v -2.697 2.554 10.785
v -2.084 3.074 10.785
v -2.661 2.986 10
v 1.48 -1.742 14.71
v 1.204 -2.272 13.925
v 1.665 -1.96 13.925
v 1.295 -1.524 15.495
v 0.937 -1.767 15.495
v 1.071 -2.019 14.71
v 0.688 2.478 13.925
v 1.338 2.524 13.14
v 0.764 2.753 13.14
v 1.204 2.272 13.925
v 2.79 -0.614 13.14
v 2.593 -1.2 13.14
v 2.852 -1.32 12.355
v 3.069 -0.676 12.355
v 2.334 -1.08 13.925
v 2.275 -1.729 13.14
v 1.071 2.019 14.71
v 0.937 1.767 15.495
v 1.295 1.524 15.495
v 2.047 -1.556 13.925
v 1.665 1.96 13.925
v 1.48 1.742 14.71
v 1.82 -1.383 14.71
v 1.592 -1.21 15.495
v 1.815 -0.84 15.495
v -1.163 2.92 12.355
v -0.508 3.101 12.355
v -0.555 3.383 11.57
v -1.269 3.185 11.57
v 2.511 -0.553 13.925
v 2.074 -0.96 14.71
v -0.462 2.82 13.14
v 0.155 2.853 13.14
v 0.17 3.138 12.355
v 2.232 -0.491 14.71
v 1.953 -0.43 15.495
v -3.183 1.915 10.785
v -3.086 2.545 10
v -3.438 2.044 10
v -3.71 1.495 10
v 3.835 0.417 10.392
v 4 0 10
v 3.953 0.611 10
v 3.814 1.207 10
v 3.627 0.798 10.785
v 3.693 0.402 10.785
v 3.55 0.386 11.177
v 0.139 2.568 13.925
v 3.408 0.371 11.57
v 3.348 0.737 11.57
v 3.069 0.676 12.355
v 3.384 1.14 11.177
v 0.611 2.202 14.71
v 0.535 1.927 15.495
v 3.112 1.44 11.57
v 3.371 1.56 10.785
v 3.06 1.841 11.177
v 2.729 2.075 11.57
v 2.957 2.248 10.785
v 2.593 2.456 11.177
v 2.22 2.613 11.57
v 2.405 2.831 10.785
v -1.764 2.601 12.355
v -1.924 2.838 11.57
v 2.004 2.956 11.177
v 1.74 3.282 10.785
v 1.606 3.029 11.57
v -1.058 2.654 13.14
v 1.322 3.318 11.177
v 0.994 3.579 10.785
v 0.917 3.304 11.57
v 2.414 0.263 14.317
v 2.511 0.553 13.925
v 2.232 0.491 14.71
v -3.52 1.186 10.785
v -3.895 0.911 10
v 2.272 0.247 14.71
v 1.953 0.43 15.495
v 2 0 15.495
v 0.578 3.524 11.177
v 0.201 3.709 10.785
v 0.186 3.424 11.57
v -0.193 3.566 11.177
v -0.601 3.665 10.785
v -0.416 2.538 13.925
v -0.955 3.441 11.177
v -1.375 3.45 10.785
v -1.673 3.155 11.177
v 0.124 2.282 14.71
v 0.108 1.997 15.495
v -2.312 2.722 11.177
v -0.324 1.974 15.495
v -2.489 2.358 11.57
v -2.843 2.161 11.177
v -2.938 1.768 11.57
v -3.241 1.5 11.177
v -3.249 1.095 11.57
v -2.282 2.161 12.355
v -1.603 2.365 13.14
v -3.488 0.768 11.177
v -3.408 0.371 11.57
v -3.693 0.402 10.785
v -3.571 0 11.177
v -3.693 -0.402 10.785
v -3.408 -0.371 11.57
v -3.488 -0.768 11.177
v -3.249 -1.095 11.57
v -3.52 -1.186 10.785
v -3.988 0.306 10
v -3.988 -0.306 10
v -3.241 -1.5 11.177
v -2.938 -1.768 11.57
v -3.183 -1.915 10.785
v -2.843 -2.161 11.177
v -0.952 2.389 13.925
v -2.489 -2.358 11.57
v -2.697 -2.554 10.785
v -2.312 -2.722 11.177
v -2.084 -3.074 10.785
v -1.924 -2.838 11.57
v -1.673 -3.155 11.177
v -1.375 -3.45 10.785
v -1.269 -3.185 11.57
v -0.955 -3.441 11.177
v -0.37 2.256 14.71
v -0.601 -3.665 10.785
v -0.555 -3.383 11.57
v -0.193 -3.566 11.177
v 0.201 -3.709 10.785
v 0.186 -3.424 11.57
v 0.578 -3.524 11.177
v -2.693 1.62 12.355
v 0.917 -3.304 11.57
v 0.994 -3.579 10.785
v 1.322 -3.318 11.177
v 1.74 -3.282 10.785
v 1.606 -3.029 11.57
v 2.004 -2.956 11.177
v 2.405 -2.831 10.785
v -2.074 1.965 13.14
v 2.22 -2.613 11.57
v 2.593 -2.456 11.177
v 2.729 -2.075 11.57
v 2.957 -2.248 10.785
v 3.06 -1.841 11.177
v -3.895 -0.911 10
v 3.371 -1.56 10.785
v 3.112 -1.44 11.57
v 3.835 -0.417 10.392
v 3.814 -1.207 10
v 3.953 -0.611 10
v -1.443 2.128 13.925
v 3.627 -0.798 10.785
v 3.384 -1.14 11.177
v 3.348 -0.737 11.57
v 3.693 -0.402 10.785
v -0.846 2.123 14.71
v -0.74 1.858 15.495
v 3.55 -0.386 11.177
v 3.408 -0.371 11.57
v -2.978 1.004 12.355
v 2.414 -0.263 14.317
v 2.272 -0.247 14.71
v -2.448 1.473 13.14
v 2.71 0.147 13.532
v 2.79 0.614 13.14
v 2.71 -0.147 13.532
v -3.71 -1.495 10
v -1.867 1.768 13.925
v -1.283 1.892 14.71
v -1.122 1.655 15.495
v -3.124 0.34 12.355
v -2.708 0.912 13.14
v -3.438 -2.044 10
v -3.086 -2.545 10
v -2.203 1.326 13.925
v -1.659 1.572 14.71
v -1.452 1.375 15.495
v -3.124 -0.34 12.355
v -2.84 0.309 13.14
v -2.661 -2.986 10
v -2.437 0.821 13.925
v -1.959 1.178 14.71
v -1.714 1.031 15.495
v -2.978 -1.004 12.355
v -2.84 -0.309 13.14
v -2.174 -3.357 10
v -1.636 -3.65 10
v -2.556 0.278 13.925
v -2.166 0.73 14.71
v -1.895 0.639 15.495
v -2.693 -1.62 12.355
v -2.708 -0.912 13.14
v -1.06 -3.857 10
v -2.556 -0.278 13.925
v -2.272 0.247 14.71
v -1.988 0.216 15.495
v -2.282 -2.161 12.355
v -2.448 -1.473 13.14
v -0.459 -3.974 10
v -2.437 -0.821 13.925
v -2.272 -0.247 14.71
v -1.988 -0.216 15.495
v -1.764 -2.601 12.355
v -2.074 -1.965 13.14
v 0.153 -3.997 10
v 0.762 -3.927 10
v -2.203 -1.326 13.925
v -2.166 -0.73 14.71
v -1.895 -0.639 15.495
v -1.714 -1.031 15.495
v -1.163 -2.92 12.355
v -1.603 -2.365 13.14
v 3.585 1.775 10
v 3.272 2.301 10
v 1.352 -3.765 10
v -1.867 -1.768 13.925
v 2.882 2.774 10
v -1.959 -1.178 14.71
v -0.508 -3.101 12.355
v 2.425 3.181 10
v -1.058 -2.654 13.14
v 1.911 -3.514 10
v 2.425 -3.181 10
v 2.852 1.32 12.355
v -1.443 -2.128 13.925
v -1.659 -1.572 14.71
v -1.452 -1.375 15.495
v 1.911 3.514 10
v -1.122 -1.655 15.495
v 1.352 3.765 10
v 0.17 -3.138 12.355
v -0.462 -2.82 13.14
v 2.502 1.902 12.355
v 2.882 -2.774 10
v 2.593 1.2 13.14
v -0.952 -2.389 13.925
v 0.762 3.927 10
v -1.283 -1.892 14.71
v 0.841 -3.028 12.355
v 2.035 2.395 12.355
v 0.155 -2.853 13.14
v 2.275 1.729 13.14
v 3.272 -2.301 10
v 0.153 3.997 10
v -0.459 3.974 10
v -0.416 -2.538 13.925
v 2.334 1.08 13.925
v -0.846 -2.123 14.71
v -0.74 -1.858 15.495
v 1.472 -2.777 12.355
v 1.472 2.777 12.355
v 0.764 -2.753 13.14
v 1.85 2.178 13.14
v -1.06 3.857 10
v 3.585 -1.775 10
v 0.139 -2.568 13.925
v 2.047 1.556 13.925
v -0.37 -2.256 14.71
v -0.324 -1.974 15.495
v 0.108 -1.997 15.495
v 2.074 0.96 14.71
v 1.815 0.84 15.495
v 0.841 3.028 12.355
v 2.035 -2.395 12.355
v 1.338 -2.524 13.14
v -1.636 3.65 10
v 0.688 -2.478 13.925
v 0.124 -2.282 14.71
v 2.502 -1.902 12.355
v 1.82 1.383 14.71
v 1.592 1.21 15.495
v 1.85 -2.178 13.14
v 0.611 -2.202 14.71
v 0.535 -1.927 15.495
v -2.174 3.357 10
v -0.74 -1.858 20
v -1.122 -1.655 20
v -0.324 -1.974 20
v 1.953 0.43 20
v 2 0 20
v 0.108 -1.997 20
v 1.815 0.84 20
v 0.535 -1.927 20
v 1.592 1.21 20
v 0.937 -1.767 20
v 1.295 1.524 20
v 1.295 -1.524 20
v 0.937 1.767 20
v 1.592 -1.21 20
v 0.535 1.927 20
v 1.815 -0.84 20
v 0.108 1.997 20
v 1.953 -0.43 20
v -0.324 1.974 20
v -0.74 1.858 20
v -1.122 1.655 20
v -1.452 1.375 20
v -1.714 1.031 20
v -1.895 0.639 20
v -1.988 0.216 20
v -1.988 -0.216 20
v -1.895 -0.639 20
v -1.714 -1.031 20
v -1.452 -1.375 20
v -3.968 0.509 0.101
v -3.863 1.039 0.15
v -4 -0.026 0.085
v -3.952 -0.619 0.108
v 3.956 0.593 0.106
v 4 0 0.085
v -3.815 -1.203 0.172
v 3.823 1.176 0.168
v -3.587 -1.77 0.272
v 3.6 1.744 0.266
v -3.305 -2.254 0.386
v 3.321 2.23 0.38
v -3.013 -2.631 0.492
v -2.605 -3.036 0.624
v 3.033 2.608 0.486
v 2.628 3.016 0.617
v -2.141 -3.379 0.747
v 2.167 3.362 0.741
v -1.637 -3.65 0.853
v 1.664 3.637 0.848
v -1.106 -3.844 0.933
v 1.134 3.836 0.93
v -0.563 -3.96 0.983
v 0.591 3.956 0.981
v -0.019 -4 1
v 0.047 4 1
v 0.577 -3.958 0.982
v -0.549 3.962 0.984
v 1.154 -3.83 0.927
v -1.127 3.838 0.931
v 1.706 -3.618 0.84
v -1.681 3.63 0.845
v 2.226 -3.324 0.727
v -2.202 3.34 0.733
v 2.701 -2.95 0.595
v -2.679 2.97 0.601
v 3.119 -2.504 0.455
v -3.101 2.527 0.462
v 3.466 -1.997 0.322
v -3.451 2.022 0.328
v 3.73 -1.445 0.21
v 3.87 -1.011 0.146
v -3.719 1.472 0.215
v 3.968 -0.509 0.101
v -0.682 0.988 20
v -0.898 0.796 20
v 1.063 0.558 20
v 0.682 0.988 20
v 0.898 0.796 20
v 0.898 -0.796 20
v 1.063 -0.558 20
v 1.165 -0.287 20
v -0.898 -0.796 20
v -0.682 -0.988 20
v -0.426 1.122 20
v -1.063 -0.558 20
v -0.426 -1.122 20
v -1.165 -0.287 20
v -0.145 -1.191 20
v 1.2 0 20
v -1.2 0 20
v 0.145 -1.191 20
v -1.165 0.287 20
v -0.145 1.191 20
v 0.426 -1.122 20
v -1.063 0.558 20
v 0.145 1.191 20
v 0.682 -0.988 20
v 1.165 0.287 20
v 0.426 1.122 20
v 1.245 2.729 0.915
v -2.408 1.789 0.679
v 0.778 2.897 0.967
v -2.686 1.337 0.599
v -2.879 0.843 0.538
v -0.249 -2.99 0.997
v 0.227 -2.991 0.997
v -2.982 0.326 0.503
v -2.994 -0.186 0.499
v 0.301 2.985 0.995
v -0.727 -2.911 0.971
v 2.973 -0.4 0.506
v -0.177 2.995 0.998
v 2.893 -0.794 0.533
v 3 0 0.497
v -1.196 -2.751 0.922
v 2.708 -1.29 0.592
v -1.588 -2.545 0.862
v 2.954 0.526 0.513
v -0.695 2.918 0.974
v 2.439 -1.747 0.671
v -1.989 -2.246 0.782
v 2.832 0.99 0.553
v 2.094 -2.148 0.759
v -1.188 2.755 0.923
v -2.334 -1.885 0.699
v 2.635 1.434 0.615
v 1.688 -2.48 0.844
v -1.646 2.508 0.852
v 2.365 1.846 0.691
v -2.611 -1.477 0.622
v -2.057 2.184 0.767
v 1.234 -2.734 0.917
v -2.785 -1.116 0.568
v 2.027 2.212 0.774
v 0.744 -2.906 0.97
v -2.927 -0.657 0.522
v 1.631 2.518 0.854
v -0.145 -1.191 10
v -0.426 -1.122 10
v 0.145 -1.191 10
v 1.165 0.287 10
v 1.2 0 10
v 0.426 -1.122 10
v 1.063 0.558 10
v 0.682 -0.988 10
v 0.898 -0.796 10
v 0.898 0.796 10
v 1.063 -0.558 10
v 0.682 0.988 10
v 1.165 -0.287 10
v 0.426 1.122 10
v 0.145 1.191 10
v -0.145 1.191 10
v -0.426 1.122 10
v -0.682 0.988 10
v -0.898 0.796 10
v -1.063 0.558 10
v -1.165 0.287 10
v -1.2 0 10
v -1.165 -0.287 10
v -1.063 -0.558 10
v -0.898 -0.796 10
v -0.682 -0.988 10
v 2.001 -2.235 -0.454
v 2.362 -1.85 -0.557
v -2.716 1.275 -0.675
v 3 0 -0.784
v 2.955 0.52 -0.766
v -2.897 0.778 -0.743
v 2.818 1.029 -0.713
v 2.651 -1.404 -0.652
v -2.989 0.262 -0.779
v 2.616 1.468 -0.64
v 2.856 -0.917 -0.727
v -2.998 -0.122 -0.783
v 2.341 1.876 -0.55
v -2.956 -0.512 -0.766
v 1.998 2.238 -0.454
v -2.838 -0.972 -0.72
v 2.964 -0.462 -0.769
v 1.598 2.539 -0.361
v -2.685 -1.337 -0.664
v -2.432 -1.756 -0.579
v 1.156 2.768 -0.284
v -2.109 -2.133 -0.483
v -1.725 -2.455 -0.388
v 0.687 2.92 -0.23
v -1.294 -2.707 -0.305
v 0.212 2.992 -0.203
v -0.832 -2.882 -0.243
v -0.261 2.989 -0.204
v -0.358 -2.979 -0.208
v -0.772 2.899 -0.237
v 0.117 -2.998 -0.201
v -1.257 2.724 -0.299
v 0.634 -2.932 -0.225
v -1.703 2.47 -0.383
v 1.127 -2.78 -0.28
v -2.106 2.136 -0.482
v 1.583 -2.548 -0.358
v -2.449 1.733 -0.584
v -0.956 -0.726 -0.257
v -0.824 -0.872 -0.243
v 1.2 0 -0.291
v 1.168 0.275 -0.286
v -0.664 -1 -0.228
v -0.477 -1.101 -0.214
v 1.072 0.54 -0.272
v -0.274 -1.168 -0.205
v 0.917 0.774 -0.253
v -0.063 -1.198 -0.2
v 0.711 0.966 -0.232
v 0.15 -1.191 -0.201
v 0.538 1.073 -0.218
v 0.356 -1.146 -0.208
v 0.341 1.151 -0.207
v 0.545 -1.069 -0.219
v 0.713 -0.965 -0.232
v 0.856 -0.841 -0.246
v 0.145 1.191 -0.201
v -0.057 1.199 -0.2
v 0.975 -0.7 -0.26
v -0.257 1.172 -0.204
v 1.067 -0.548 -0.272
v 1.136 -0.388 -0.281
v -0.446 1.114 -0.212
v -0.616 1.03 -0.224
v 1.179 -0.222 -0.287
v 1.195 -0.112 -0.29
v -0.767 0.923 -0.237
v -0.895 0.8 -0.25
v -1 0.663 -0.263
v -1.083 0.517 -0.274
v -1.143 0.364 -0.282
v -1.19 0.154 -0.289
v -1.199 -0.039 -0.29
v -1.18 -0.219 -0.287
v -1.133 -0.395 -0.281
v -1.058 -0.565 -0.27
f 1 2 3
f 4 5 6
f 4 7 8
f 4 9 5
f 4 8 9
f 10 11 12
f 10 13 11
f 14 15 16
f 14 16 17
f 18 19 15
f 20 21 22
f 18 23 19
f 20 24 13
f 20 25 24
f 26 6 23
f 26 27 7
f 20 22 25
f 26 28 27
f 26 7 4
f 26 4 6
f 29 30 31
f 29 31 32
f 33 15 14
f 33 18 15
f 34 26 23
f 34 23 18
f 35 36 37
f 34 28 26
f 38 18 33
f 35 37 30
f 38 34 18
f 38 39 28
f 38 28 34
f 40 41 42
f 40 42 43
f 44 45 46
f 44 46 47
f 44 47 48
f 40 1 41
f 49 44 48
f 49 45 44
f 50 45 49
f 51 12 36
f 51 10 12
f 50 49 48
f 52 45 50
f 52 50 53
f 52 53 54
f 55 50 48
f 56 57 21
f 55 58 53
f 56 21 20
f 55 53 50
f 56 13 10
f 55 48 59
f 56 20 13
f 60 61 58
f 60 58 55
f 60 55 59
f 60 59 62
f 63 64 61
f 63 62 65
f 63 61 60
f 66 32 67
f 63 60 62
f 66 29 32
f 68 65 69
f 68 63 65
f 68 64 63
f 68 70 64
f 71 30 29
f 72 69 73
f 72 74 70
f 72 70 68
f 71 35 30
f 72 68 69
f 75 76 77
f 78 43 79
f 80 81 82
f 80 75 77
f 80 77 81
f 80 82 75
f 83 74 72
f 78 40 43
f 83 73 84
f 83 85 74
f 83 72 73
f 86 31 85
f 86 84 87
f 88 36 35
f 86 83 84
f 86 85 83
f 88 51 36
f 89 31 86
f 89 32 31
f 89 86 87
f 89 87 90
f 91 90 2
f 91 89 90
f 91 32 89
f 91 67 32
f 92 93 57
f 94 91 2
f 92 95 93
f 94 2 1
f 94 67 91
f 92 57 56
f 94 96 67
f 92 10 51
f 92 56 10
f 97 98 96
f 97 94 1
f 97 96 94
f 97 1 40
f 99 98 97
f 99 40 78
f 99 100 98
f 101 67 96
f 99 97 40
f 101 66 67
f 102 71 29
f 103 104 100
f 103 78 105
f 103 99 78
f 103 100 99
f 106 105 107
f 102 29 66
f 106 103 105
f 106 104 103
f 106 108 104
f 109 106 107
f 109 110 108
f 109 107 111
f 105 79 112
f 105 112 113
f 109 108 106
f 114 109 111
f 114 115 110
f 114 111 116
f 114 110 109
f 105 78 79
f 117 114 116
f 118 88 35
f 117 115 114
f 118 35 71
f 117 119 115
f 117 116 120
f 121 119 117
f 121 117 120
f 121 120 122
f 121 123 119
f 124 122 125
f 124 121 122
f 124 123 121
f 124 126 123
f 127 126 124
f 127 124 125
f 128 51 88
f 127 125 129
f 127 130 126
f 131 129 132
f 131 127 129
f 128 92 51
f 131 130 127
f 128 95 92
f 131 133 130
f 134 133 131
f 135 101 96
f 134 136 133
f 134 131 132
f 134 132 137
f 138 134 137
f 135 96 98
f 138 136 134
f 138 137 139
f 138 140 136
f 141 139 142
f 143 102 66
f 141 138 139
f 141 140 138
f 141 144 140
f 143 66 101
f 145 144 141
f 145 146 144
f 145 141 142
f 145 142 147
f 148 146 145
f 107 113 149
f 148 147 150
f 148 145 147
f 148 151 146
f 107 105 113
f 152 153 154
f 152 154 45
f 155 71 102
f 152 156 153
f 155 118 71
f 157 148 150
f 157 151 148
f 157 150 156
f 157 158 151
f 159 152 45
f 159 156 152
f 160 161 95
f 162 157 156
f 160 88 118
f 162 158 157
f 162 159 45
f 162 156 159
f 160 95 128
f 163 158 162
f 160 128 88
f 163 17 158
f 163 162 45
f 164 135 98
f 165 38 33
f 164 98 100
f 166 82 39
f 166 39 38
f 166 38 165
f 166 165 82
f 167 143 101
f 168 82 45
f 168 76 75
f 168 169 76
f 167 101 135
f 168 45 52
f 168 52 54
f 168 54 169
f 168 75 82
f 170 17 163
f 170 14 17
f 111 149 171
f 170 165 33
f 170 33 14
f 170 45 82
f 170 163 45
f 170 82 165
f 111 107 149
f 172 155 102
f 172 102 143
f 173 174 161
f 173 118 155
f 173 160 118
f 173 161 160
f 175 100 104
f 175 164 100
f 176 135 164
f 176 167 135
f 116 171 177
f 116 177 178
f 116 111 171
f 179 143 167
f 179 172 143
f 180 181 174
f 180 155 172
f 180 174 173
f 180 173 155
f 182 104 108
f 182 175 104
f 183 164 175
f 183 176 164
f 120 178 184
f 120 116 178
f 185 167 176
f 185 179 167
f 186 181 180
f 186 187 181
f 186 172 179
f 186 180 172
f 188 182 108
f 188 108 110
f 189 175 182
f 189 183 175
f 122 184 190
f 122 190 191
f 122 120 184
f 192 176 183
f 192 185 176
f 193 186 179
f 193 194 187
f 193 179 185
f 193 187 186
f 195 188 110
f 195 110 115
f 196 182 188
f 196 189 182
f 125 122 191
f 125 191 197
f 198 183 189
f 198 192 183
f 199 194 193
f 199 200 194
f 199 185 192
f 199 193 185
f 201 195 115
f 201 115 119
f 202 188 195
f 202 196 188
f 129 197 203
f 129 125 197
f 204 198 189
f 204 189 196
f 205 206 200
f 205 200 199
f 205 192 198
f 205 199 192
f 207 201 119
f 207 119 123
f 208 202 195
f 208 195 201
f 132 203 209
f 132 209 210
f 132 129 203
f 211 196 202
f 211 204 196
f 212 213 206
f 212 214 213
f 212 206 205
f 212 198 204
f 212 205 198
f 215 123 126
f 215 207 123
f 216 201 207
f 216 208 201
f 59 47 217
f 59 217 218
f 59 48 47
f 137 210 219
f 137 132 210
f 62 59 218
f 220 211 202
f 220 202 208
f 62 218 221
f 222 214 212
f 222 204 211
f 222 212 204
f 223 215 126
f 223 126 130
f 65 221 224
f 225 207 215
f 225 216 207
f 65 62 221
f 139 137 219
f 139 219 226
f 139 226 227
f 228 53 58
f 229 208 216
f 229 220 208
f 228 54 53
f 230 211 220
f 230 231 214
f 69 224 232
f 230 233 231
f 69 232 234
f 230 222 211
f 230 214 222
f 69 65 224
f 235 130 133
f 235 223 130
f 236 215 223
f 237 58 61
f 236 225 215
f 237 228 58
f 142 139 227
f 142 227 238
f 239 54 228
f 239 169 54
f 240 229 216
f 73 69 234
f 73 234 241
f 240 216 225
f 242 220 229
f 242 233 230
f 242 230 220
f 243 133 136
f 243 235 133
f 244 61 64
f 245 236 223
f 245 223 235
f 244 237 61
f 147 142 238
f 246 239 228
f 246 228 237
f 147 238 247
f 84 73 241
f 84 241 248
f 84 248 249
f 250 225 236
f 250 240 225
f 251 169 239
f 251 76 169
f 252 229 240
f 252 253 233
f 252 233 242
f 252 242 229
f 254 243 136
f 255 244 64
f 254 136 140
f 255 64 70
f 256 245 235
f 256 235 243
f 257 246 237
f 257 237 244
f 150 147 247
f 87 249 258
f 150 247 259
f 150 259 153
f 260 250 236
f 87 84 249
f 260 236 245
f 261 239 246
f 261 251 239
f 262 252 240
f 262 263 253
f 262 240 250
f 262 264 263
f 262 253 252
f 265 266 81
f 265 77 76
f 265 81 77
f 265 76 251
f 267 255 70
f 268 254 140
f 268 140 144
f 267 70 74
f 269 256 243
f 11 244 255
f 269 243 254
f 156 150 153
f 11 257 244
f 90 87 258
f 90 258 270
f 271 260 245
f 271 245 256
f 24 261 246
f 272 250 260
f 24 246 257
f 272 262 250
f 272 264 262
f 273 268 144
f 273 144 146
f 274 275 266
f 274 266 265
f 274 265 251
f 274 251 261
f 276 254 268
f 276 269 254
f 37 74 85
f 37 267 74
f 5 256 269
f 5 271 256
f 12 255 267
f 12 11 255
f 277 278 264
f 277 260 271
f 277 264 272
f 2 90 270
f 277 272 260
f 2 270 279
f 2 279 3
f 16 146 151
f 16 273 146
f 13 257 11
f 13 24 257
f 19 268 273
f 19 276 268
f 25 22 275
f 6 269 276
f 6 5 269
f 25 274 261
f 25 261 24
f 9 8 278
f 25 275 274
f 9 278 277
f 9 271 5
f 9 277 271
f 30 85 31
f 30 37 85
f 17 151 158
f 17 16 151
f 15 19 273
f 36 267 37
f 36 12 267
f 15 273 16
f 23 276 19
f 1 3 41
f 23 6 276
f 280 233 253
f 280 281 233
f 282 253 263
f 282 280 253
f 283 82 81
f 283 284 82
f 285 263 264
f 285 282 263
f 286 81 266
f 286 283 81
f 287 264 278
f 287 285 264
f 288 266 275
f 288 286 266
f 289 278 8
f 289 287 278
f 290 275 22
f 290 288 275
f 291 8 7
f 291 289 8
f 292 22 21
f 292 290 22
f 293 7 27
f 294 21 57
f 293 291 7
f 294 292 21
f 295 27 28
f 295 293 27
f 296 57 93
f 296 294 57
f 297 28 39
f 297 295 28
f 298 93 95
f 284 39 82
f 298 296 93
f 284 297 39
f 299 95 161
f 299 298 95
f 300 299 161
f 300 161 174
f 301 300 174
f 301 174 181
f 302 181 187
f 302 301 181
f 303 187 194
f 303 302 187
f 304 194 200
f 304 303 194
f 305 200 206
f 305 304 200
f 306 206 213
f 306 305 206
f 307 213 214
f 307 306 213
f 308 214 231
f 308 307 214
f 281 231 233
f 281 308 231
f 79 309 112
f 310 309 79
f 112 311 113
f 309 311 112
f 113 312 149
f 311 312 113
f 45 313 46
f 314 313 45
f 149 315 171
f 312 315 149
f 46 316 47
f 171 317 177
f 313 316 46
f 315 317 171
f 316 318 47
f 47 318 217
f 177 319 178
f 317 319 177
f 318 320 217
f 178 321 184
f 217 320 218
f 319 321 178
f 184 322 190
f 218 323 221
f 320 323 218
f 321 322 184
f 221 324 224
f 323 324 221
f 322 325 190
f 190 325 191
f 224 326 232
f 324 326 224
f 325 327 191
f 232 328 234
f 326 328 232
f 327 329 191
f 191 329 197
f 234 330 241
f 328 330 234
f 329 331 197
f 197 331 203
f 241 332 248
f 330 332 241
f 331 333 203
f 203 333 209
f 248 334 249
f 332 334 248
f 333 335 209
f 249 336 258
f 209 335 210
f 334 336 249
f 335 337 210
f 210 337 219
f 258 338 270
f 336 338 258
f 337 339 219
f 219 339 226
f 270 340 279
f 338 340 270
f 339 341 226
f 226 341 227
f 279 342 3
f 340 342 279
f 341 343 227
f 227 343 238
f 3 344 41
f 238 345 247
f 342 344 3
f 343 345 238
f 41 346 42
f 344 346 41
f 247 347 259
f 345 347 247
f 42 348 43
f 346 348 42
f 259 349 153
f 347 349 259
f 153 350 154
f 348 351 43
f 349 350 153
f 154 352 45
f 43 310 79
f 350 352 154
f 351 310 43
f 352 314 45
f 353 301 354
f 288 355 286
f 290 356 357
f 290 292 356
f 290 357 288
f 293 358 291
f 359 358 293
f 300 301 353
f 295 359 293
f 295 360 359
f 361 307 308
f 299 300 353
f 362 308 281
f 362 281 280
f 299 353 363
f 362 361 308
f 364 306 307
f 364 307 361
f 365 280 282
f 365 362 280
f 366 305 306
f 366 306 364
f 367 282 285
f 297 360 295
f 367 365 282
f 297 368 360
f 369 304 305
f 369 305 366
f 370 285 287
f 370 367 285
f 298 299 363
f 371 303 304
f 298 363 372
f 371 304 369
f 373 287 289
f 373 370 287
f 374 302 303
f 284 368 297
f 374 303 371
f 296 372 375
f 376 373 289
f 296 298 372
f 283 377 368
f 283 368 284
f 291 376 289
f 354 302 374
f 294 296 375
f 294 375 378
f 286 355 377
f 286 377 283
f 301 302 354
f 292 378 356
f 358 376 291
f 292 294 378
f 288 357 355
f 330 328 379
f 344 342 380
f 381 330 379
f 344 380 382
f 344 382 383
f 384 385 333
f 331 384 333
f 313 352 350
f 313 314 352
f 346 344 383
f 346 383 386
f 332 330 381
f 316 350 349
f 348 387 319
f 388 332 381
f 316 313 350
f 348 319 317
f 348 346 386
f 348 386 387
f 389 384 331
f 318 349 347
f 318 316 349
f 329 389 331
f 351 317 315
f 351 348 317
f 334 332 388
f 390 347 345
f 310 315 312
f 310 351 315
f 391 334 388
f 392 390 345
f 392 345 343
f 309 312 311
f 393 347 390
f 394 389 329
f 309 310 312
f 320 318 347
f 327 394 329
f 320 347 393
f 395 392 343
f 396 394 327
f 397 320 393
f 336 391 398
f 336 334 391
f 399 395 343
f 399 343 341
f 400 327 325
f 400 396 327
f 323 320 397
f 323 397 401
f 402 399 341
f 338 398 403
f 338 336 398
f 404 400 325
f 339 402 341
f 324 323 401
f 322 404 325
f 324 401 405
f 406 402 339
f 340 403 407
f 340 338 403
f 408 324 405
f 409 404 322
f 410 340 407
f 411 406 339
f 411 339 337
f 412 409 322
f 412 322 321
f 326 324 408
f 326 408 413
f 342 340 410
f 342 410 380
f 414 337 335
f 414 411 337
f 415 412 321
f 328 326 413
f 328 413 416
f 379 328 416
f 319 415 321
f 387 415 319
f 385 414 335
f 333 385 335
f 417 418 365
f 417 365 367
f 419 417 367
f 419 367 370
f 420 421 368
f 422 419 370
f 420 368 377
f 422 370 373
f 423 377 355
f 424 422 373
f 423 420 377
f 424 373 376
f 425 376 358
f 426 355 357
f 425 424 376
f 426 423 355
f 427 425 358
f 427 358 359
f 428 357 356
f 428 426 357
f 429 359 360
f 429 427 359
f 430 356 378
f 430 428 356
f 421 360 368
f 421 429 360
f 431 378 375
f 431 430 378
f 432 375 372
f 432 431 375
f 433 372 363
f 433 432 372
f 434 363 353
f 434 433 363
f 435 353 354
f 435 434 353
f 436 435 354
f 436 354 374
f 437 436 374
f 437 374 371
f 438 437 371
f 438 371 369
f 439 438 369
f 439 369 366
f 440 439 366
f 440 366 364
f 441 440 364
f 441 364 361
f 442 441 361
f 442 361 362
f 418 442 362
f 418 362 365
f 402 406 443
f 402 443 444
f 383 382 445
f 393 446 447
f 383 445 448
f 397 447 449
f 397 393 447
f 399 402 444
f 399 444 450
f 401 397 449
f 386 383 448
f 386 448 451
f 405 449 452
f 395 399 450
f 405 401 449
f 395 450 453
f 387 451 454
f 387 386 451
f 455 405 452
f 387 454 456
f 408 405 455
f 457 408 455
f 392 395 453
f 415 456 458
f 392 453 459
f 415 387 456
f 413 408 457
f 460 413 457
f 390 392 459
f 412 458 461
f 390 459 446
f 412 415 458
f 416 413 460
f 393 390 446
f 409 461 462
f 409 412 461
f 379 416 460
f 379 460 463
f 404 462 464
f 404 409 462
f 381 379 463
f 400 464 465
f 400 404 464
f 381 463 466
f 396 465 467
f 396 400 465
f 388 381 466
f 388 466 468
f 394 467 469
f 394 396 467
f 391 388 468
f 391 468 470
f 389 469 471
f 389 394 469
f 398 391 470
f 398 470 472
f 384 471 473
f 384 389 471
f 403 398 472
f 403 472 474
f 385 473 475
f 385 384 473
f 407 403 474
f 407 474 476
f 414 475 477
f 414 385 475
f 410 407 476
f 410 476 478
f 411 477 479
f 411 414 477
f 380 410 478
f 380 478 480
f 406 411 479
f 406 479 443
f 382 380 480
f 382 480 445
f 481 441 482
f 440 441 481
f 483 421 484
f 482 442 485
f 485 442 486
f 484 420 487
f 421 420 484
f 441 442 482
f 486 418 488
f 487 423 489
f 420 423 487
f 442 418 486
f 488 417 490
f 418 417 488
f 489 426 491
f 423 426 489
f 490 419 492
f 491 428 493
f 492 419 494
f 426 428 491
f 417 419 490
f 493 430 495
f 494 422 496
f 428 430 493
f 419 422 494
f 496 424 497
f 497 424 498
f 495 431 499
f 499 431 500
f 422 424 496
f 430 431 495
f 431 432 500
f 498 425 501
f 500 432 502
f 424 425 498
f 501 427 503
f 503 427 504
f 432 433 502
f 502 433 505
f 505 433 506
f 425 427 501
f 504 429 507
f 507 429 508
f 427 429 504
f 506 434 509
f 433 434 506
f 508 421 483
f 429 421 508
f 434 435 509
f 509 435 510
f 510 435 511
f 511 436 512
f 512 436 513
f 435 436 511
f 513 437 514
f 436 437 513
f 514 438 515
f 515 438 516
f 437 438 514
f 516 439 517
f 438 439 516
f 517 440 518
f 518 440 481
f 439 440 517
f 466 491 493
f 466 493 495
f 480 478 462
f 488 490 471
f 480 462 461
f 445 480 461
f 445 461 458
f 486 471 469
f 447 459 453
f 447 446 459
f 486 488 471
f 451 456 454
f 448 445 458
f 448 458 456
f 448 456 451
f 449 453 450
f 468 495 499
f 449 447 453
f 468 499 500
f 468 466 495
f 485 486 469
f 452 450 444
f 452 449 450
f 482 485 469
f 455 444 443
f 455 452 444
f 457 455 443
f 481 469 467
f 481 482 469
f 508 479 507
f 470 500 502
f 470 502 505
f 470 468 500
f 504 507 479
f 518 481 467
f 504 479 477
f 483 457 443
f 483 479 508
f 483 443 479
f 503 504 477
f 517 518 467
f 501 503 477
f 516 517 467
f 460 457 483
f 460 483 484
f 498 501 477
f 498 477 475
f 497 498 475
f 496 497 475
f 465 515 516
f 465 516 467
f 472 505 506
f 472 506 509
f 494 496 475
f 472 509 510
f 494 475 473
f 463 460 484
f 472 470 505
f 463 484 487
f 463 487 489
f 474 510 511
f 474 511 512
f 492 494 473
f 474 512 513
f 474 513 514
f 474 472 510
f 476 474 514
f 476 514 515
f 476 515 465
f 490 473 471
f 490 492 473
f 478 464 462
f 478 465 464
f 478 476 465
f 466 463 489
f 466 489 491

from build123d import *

# Parameters (mm, degrees)
SKETCH005_R      = 1.2
EXTRUDE005_DEPTH = 30
SKETCH003_R      = 8
EXTRUDE004_DEPTH = 10
SKETCH002_R      = 3
EXTRUDE003_DEPTH = 12
SKETCH001_R      = 9.2
EXTRUDE001_DEPTH = 10
SKETCH_R         = 4
EXTRUDE_DEPTH    = 10


with BuildPart() as extrude005:
    # Sketch005 → Extrude005 (new body)
    with BuildSketch(Plane.XY.offset(20)):
        Circle(SKETCH005_R)
    extrude(amount=-EXTRUDE005_DEPTH)


with BuildPart() as extrude004:
    # Sketch003 → Extrude004 (new body, symmetric)
    with BuildSketch(Plane.XZ):
        with Locations((0, -8.2)):
            Circle(SKETCH003_R)
    extrude(amount=EXTRUDE004_DEPTH, both=True)


with BuildPart() as cut001:
    # Sketch002 (on Face3 of Cut) → Extrude003 (new body)
    with BuildSketch(Plane.XY.offset(10)):
        Circle(SKETCH002_R)
    extrude(amount=-EXTRUDE003_DEPTH)

    # Cut001: cut Extrude004
    add(extrude004.part, mode=Mode.SUBTRACT)


with BuildPart() as extrude001:
    # Sketch001 → Extrude001 (new body, symmetric)
    with BuildSketch(Plane.XZ):
        with Locations((0, -8.2)):
            Circle(SKETCH001_R)
    extrude(amount=EXTRUDE001_DEPTH, both=True)


with BuildPart() as cut004:
    # Sketch → Extrude (new body)
    with BuildSketch(Plane.XY):
        Circle(SKETCH_R)
    extrude(amount=EXTRUDE_DEPTH)

    # Cut: cut Extrude001
    add(extrude001.part, mode=Mode.SUBTRACT)

    # Fusion: union Cut001
    add(cut001.part)

    # Cut003: cut Extrude005
    add(extrude005.part, mode=Mode.SUBTRACT)

    # Cut004: cut Extrude005
    add(extrude005.part, mode=Mode.SUBTRACT)


with BuildPart() as fusion001:
    # Sketch004 → Revolve (revolve)
    with BuildSketch(Plane.XZ):
        Polygon((1.2, 10), (4, 10), (2, 15.494955), (2, 20), (1.2, 20), align=None)
    revolve(axis=Axis((0, 0, 0), (0, 0, 1)))

    # Fusion001: union Cut004
    add(cut004.part)


solid = fusion001.part
